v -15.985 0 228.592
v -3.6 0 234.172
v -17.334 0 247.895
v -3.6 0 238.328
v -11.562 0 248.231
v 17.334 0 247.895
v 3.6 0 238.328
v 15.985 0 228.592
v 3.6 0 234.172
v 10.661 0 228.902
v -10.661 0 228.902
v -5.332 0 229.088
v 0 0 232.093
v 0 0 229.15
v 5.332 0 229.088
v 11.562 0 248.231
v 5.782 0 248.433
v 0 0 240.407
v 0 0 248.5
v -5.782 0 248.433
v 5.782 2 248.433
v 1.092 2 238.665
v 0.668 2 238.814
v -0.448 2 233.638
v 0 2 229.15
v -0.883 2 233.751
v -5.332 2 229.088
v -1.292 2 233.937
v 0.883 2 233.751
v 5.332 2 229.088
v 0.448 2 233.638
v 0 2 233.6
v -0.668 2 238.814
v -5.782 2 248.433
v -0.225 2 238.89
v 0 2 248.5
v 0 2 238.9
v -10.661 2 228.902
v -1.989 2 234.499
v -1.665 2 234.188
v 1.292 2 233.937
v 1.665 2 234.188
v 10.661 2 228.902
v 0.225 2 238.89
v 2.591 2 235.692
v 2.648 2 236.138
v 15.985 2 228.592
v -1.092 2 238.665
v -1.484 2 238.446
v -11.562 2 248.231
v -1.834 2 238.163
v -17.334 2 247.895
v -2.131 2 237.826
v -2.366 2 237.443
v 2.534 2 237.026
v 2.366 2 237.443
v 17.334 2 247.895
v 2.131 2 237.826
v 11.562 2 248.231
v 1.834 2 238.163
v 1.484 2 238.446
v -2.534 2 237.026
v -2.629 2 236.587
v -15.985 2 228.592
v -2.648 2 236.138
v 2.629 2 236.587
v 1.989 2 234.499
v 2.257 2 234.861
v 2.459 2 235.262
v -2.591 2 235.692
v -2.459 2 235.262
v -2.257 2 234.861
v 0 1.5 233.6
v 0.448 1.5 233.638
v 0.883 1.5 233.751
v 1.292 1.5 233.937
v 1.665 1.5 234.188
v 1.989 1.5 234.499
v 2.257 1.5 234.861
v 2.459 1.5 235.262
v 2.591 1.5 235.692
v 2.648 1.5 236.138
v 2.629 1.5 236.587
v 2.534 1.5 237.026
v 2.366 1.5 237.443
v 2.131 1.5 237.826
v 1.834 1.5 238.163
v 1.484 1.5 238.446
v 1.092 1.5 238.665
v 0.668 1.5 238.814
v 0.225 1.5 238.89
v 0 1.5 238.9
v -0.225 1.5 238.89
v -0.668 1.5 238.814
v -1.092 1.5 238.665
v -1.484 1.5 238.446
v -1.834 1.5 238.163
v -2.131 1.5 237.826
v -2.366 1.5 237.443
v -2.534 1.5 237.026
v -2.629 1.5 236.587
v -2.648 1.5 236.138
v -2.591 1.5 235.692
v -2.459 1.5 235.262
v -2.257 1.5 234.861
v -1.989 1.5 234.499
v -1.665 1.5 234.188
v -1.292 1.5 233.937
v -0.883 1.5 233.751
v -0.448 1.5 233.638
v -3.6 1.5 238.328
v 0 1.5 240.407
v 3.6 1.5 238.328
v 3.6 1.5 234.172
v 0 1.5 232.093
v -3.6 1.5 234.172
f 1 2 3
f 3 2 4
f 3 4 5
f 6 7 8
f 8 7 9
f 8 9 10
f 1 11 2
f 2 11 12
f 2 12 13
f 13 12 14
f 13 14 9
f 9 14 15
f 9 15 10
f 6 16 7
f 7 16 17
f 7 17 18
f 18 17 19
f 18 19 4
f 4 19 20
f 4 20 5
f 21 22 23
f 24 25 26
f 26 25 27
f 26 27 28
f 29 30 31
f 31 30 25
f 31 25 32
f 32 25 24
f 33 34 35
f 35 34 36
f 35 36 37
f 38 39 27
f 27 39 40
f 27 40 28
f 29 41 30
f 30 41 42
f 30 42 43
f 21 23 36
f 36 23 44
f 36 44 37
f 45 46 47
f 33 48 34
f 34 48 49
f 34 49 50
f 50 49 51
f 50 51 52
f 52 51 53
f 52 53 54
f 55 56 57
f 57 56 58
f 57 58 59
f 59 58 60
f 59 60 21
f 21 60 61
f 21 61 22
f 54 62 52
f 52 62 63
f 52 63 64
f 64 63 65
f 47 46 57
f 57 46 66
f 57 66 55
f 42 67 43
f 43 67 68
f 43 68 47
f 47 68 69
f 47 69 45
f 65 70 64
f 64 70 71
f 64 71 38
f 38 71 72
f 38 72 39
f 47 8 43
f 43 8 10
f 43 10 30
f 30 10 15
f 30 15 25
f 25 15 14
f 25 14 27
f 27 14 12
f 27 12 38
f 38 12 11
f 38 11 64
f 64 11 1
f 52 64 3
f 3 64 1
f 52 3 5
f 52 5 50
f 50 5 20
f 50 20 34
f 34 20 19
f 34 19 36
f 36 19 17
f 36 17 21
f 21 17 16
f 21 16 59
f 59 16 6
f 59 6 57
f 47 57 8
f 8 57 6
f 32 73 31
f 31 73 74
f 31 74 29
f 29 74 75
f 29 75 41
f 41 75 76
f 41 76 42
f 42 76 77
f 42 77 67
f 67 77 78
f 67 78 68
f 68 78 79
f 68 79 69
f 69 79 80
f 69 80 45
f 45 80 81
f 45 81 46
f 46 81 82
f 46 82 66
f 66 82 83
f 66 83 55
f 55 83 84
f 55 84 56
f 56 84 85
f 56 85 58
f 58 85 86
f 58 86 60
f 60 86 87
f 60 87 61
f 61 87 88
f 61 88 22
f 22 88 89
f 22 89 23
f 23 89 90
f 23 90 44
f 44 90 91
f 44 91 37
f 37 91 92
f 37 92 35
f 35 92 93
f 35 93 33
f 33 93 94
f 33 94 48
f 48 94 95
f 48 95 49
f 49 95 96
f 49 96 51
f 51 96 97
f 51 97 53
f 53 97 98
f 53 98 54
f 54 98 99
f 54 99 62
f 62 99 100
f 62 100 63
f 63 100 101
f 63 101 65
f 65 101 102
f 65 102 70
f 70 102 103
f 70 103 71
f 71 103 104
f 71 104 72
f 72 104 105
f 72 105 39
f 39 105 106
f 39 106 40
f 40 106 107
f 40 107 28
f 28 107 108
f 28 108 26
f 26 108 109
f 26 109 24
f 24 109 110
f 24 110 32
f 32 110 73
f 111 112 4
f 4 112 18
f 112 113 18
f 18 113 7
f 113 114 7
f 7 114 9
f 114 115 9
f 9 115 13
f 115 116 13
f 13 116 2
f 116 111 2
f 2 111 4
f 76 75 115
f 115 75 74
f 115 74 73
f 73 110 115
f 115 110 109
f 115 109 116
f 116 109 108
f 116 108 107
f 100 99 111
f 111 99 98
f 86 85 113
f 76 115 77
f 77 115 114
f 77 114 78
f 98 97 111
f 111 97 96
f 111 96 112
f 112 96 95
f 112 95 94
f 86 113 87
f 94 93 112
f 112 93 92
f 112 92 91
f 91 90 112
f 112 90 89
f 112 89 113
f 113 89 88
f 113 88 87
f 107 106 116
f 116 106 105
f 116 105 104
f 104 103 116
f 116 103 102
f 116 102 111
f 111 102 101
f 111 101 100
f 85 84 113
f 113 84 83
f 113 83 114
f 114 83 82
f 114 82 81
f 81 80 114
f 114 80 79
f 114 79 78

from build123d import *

# Parameters (mm, degrees)
SKETCH2_R           = 2.65
BOSS_EXTRUDE1_DEPTH = 2
CUT_EXTRUDE1_DEPTH  = 1.5


with BuildPart() as part:
    # Sketch2 → Boss-Extrude1 (new body)
    with BuildSketch(Plane(origin=(0, 0, 0), x_dir=(1, 0, 0), z_dir=(0, 1, 0))):
        with BuildLine():
            Line((-15.984695958, -228.591802117), (-17.334483725, -247.89466649))
            ThreePointArc((-17.334483725, -247.89466649), (0, -248.5), (17.334483725, -247.89466649))
            Line((17.334483725, -247.89466649), (15.984695958, -228.591802117))
            ThreePointArc((15.984695958, -228.591802117), (0, -229.15), (-15.984695958, -228.591802117))
        make_face()
        with Locations(Location((0, -236.25, 0), (0, 0, 270))):
            Circle(SKETCH2_R, mode=Mode.SUBTRACT)
    extrude(amount=BOSS_EXTRUDE1_DEPTH)

    # Sketch3 → Cut-Extrude1 (cut)
    with BuildSketch(Plane(origin=(0, 0, 0), x_dir=(1, 0, 0), z_dir=(0, 1, 0))):
        Polygon((0, -240.406921938), (3.6, -238.328460969), (3.6, -234.171539031), (0, -232.093078062), (-3.6, -234.171539031), (-3.6, -238.328460969), align=None)
    extrude(amount=CUT_EXTRUDE1_DEPTH, mode=Mode.SUBTRACT)


solid = part.part
